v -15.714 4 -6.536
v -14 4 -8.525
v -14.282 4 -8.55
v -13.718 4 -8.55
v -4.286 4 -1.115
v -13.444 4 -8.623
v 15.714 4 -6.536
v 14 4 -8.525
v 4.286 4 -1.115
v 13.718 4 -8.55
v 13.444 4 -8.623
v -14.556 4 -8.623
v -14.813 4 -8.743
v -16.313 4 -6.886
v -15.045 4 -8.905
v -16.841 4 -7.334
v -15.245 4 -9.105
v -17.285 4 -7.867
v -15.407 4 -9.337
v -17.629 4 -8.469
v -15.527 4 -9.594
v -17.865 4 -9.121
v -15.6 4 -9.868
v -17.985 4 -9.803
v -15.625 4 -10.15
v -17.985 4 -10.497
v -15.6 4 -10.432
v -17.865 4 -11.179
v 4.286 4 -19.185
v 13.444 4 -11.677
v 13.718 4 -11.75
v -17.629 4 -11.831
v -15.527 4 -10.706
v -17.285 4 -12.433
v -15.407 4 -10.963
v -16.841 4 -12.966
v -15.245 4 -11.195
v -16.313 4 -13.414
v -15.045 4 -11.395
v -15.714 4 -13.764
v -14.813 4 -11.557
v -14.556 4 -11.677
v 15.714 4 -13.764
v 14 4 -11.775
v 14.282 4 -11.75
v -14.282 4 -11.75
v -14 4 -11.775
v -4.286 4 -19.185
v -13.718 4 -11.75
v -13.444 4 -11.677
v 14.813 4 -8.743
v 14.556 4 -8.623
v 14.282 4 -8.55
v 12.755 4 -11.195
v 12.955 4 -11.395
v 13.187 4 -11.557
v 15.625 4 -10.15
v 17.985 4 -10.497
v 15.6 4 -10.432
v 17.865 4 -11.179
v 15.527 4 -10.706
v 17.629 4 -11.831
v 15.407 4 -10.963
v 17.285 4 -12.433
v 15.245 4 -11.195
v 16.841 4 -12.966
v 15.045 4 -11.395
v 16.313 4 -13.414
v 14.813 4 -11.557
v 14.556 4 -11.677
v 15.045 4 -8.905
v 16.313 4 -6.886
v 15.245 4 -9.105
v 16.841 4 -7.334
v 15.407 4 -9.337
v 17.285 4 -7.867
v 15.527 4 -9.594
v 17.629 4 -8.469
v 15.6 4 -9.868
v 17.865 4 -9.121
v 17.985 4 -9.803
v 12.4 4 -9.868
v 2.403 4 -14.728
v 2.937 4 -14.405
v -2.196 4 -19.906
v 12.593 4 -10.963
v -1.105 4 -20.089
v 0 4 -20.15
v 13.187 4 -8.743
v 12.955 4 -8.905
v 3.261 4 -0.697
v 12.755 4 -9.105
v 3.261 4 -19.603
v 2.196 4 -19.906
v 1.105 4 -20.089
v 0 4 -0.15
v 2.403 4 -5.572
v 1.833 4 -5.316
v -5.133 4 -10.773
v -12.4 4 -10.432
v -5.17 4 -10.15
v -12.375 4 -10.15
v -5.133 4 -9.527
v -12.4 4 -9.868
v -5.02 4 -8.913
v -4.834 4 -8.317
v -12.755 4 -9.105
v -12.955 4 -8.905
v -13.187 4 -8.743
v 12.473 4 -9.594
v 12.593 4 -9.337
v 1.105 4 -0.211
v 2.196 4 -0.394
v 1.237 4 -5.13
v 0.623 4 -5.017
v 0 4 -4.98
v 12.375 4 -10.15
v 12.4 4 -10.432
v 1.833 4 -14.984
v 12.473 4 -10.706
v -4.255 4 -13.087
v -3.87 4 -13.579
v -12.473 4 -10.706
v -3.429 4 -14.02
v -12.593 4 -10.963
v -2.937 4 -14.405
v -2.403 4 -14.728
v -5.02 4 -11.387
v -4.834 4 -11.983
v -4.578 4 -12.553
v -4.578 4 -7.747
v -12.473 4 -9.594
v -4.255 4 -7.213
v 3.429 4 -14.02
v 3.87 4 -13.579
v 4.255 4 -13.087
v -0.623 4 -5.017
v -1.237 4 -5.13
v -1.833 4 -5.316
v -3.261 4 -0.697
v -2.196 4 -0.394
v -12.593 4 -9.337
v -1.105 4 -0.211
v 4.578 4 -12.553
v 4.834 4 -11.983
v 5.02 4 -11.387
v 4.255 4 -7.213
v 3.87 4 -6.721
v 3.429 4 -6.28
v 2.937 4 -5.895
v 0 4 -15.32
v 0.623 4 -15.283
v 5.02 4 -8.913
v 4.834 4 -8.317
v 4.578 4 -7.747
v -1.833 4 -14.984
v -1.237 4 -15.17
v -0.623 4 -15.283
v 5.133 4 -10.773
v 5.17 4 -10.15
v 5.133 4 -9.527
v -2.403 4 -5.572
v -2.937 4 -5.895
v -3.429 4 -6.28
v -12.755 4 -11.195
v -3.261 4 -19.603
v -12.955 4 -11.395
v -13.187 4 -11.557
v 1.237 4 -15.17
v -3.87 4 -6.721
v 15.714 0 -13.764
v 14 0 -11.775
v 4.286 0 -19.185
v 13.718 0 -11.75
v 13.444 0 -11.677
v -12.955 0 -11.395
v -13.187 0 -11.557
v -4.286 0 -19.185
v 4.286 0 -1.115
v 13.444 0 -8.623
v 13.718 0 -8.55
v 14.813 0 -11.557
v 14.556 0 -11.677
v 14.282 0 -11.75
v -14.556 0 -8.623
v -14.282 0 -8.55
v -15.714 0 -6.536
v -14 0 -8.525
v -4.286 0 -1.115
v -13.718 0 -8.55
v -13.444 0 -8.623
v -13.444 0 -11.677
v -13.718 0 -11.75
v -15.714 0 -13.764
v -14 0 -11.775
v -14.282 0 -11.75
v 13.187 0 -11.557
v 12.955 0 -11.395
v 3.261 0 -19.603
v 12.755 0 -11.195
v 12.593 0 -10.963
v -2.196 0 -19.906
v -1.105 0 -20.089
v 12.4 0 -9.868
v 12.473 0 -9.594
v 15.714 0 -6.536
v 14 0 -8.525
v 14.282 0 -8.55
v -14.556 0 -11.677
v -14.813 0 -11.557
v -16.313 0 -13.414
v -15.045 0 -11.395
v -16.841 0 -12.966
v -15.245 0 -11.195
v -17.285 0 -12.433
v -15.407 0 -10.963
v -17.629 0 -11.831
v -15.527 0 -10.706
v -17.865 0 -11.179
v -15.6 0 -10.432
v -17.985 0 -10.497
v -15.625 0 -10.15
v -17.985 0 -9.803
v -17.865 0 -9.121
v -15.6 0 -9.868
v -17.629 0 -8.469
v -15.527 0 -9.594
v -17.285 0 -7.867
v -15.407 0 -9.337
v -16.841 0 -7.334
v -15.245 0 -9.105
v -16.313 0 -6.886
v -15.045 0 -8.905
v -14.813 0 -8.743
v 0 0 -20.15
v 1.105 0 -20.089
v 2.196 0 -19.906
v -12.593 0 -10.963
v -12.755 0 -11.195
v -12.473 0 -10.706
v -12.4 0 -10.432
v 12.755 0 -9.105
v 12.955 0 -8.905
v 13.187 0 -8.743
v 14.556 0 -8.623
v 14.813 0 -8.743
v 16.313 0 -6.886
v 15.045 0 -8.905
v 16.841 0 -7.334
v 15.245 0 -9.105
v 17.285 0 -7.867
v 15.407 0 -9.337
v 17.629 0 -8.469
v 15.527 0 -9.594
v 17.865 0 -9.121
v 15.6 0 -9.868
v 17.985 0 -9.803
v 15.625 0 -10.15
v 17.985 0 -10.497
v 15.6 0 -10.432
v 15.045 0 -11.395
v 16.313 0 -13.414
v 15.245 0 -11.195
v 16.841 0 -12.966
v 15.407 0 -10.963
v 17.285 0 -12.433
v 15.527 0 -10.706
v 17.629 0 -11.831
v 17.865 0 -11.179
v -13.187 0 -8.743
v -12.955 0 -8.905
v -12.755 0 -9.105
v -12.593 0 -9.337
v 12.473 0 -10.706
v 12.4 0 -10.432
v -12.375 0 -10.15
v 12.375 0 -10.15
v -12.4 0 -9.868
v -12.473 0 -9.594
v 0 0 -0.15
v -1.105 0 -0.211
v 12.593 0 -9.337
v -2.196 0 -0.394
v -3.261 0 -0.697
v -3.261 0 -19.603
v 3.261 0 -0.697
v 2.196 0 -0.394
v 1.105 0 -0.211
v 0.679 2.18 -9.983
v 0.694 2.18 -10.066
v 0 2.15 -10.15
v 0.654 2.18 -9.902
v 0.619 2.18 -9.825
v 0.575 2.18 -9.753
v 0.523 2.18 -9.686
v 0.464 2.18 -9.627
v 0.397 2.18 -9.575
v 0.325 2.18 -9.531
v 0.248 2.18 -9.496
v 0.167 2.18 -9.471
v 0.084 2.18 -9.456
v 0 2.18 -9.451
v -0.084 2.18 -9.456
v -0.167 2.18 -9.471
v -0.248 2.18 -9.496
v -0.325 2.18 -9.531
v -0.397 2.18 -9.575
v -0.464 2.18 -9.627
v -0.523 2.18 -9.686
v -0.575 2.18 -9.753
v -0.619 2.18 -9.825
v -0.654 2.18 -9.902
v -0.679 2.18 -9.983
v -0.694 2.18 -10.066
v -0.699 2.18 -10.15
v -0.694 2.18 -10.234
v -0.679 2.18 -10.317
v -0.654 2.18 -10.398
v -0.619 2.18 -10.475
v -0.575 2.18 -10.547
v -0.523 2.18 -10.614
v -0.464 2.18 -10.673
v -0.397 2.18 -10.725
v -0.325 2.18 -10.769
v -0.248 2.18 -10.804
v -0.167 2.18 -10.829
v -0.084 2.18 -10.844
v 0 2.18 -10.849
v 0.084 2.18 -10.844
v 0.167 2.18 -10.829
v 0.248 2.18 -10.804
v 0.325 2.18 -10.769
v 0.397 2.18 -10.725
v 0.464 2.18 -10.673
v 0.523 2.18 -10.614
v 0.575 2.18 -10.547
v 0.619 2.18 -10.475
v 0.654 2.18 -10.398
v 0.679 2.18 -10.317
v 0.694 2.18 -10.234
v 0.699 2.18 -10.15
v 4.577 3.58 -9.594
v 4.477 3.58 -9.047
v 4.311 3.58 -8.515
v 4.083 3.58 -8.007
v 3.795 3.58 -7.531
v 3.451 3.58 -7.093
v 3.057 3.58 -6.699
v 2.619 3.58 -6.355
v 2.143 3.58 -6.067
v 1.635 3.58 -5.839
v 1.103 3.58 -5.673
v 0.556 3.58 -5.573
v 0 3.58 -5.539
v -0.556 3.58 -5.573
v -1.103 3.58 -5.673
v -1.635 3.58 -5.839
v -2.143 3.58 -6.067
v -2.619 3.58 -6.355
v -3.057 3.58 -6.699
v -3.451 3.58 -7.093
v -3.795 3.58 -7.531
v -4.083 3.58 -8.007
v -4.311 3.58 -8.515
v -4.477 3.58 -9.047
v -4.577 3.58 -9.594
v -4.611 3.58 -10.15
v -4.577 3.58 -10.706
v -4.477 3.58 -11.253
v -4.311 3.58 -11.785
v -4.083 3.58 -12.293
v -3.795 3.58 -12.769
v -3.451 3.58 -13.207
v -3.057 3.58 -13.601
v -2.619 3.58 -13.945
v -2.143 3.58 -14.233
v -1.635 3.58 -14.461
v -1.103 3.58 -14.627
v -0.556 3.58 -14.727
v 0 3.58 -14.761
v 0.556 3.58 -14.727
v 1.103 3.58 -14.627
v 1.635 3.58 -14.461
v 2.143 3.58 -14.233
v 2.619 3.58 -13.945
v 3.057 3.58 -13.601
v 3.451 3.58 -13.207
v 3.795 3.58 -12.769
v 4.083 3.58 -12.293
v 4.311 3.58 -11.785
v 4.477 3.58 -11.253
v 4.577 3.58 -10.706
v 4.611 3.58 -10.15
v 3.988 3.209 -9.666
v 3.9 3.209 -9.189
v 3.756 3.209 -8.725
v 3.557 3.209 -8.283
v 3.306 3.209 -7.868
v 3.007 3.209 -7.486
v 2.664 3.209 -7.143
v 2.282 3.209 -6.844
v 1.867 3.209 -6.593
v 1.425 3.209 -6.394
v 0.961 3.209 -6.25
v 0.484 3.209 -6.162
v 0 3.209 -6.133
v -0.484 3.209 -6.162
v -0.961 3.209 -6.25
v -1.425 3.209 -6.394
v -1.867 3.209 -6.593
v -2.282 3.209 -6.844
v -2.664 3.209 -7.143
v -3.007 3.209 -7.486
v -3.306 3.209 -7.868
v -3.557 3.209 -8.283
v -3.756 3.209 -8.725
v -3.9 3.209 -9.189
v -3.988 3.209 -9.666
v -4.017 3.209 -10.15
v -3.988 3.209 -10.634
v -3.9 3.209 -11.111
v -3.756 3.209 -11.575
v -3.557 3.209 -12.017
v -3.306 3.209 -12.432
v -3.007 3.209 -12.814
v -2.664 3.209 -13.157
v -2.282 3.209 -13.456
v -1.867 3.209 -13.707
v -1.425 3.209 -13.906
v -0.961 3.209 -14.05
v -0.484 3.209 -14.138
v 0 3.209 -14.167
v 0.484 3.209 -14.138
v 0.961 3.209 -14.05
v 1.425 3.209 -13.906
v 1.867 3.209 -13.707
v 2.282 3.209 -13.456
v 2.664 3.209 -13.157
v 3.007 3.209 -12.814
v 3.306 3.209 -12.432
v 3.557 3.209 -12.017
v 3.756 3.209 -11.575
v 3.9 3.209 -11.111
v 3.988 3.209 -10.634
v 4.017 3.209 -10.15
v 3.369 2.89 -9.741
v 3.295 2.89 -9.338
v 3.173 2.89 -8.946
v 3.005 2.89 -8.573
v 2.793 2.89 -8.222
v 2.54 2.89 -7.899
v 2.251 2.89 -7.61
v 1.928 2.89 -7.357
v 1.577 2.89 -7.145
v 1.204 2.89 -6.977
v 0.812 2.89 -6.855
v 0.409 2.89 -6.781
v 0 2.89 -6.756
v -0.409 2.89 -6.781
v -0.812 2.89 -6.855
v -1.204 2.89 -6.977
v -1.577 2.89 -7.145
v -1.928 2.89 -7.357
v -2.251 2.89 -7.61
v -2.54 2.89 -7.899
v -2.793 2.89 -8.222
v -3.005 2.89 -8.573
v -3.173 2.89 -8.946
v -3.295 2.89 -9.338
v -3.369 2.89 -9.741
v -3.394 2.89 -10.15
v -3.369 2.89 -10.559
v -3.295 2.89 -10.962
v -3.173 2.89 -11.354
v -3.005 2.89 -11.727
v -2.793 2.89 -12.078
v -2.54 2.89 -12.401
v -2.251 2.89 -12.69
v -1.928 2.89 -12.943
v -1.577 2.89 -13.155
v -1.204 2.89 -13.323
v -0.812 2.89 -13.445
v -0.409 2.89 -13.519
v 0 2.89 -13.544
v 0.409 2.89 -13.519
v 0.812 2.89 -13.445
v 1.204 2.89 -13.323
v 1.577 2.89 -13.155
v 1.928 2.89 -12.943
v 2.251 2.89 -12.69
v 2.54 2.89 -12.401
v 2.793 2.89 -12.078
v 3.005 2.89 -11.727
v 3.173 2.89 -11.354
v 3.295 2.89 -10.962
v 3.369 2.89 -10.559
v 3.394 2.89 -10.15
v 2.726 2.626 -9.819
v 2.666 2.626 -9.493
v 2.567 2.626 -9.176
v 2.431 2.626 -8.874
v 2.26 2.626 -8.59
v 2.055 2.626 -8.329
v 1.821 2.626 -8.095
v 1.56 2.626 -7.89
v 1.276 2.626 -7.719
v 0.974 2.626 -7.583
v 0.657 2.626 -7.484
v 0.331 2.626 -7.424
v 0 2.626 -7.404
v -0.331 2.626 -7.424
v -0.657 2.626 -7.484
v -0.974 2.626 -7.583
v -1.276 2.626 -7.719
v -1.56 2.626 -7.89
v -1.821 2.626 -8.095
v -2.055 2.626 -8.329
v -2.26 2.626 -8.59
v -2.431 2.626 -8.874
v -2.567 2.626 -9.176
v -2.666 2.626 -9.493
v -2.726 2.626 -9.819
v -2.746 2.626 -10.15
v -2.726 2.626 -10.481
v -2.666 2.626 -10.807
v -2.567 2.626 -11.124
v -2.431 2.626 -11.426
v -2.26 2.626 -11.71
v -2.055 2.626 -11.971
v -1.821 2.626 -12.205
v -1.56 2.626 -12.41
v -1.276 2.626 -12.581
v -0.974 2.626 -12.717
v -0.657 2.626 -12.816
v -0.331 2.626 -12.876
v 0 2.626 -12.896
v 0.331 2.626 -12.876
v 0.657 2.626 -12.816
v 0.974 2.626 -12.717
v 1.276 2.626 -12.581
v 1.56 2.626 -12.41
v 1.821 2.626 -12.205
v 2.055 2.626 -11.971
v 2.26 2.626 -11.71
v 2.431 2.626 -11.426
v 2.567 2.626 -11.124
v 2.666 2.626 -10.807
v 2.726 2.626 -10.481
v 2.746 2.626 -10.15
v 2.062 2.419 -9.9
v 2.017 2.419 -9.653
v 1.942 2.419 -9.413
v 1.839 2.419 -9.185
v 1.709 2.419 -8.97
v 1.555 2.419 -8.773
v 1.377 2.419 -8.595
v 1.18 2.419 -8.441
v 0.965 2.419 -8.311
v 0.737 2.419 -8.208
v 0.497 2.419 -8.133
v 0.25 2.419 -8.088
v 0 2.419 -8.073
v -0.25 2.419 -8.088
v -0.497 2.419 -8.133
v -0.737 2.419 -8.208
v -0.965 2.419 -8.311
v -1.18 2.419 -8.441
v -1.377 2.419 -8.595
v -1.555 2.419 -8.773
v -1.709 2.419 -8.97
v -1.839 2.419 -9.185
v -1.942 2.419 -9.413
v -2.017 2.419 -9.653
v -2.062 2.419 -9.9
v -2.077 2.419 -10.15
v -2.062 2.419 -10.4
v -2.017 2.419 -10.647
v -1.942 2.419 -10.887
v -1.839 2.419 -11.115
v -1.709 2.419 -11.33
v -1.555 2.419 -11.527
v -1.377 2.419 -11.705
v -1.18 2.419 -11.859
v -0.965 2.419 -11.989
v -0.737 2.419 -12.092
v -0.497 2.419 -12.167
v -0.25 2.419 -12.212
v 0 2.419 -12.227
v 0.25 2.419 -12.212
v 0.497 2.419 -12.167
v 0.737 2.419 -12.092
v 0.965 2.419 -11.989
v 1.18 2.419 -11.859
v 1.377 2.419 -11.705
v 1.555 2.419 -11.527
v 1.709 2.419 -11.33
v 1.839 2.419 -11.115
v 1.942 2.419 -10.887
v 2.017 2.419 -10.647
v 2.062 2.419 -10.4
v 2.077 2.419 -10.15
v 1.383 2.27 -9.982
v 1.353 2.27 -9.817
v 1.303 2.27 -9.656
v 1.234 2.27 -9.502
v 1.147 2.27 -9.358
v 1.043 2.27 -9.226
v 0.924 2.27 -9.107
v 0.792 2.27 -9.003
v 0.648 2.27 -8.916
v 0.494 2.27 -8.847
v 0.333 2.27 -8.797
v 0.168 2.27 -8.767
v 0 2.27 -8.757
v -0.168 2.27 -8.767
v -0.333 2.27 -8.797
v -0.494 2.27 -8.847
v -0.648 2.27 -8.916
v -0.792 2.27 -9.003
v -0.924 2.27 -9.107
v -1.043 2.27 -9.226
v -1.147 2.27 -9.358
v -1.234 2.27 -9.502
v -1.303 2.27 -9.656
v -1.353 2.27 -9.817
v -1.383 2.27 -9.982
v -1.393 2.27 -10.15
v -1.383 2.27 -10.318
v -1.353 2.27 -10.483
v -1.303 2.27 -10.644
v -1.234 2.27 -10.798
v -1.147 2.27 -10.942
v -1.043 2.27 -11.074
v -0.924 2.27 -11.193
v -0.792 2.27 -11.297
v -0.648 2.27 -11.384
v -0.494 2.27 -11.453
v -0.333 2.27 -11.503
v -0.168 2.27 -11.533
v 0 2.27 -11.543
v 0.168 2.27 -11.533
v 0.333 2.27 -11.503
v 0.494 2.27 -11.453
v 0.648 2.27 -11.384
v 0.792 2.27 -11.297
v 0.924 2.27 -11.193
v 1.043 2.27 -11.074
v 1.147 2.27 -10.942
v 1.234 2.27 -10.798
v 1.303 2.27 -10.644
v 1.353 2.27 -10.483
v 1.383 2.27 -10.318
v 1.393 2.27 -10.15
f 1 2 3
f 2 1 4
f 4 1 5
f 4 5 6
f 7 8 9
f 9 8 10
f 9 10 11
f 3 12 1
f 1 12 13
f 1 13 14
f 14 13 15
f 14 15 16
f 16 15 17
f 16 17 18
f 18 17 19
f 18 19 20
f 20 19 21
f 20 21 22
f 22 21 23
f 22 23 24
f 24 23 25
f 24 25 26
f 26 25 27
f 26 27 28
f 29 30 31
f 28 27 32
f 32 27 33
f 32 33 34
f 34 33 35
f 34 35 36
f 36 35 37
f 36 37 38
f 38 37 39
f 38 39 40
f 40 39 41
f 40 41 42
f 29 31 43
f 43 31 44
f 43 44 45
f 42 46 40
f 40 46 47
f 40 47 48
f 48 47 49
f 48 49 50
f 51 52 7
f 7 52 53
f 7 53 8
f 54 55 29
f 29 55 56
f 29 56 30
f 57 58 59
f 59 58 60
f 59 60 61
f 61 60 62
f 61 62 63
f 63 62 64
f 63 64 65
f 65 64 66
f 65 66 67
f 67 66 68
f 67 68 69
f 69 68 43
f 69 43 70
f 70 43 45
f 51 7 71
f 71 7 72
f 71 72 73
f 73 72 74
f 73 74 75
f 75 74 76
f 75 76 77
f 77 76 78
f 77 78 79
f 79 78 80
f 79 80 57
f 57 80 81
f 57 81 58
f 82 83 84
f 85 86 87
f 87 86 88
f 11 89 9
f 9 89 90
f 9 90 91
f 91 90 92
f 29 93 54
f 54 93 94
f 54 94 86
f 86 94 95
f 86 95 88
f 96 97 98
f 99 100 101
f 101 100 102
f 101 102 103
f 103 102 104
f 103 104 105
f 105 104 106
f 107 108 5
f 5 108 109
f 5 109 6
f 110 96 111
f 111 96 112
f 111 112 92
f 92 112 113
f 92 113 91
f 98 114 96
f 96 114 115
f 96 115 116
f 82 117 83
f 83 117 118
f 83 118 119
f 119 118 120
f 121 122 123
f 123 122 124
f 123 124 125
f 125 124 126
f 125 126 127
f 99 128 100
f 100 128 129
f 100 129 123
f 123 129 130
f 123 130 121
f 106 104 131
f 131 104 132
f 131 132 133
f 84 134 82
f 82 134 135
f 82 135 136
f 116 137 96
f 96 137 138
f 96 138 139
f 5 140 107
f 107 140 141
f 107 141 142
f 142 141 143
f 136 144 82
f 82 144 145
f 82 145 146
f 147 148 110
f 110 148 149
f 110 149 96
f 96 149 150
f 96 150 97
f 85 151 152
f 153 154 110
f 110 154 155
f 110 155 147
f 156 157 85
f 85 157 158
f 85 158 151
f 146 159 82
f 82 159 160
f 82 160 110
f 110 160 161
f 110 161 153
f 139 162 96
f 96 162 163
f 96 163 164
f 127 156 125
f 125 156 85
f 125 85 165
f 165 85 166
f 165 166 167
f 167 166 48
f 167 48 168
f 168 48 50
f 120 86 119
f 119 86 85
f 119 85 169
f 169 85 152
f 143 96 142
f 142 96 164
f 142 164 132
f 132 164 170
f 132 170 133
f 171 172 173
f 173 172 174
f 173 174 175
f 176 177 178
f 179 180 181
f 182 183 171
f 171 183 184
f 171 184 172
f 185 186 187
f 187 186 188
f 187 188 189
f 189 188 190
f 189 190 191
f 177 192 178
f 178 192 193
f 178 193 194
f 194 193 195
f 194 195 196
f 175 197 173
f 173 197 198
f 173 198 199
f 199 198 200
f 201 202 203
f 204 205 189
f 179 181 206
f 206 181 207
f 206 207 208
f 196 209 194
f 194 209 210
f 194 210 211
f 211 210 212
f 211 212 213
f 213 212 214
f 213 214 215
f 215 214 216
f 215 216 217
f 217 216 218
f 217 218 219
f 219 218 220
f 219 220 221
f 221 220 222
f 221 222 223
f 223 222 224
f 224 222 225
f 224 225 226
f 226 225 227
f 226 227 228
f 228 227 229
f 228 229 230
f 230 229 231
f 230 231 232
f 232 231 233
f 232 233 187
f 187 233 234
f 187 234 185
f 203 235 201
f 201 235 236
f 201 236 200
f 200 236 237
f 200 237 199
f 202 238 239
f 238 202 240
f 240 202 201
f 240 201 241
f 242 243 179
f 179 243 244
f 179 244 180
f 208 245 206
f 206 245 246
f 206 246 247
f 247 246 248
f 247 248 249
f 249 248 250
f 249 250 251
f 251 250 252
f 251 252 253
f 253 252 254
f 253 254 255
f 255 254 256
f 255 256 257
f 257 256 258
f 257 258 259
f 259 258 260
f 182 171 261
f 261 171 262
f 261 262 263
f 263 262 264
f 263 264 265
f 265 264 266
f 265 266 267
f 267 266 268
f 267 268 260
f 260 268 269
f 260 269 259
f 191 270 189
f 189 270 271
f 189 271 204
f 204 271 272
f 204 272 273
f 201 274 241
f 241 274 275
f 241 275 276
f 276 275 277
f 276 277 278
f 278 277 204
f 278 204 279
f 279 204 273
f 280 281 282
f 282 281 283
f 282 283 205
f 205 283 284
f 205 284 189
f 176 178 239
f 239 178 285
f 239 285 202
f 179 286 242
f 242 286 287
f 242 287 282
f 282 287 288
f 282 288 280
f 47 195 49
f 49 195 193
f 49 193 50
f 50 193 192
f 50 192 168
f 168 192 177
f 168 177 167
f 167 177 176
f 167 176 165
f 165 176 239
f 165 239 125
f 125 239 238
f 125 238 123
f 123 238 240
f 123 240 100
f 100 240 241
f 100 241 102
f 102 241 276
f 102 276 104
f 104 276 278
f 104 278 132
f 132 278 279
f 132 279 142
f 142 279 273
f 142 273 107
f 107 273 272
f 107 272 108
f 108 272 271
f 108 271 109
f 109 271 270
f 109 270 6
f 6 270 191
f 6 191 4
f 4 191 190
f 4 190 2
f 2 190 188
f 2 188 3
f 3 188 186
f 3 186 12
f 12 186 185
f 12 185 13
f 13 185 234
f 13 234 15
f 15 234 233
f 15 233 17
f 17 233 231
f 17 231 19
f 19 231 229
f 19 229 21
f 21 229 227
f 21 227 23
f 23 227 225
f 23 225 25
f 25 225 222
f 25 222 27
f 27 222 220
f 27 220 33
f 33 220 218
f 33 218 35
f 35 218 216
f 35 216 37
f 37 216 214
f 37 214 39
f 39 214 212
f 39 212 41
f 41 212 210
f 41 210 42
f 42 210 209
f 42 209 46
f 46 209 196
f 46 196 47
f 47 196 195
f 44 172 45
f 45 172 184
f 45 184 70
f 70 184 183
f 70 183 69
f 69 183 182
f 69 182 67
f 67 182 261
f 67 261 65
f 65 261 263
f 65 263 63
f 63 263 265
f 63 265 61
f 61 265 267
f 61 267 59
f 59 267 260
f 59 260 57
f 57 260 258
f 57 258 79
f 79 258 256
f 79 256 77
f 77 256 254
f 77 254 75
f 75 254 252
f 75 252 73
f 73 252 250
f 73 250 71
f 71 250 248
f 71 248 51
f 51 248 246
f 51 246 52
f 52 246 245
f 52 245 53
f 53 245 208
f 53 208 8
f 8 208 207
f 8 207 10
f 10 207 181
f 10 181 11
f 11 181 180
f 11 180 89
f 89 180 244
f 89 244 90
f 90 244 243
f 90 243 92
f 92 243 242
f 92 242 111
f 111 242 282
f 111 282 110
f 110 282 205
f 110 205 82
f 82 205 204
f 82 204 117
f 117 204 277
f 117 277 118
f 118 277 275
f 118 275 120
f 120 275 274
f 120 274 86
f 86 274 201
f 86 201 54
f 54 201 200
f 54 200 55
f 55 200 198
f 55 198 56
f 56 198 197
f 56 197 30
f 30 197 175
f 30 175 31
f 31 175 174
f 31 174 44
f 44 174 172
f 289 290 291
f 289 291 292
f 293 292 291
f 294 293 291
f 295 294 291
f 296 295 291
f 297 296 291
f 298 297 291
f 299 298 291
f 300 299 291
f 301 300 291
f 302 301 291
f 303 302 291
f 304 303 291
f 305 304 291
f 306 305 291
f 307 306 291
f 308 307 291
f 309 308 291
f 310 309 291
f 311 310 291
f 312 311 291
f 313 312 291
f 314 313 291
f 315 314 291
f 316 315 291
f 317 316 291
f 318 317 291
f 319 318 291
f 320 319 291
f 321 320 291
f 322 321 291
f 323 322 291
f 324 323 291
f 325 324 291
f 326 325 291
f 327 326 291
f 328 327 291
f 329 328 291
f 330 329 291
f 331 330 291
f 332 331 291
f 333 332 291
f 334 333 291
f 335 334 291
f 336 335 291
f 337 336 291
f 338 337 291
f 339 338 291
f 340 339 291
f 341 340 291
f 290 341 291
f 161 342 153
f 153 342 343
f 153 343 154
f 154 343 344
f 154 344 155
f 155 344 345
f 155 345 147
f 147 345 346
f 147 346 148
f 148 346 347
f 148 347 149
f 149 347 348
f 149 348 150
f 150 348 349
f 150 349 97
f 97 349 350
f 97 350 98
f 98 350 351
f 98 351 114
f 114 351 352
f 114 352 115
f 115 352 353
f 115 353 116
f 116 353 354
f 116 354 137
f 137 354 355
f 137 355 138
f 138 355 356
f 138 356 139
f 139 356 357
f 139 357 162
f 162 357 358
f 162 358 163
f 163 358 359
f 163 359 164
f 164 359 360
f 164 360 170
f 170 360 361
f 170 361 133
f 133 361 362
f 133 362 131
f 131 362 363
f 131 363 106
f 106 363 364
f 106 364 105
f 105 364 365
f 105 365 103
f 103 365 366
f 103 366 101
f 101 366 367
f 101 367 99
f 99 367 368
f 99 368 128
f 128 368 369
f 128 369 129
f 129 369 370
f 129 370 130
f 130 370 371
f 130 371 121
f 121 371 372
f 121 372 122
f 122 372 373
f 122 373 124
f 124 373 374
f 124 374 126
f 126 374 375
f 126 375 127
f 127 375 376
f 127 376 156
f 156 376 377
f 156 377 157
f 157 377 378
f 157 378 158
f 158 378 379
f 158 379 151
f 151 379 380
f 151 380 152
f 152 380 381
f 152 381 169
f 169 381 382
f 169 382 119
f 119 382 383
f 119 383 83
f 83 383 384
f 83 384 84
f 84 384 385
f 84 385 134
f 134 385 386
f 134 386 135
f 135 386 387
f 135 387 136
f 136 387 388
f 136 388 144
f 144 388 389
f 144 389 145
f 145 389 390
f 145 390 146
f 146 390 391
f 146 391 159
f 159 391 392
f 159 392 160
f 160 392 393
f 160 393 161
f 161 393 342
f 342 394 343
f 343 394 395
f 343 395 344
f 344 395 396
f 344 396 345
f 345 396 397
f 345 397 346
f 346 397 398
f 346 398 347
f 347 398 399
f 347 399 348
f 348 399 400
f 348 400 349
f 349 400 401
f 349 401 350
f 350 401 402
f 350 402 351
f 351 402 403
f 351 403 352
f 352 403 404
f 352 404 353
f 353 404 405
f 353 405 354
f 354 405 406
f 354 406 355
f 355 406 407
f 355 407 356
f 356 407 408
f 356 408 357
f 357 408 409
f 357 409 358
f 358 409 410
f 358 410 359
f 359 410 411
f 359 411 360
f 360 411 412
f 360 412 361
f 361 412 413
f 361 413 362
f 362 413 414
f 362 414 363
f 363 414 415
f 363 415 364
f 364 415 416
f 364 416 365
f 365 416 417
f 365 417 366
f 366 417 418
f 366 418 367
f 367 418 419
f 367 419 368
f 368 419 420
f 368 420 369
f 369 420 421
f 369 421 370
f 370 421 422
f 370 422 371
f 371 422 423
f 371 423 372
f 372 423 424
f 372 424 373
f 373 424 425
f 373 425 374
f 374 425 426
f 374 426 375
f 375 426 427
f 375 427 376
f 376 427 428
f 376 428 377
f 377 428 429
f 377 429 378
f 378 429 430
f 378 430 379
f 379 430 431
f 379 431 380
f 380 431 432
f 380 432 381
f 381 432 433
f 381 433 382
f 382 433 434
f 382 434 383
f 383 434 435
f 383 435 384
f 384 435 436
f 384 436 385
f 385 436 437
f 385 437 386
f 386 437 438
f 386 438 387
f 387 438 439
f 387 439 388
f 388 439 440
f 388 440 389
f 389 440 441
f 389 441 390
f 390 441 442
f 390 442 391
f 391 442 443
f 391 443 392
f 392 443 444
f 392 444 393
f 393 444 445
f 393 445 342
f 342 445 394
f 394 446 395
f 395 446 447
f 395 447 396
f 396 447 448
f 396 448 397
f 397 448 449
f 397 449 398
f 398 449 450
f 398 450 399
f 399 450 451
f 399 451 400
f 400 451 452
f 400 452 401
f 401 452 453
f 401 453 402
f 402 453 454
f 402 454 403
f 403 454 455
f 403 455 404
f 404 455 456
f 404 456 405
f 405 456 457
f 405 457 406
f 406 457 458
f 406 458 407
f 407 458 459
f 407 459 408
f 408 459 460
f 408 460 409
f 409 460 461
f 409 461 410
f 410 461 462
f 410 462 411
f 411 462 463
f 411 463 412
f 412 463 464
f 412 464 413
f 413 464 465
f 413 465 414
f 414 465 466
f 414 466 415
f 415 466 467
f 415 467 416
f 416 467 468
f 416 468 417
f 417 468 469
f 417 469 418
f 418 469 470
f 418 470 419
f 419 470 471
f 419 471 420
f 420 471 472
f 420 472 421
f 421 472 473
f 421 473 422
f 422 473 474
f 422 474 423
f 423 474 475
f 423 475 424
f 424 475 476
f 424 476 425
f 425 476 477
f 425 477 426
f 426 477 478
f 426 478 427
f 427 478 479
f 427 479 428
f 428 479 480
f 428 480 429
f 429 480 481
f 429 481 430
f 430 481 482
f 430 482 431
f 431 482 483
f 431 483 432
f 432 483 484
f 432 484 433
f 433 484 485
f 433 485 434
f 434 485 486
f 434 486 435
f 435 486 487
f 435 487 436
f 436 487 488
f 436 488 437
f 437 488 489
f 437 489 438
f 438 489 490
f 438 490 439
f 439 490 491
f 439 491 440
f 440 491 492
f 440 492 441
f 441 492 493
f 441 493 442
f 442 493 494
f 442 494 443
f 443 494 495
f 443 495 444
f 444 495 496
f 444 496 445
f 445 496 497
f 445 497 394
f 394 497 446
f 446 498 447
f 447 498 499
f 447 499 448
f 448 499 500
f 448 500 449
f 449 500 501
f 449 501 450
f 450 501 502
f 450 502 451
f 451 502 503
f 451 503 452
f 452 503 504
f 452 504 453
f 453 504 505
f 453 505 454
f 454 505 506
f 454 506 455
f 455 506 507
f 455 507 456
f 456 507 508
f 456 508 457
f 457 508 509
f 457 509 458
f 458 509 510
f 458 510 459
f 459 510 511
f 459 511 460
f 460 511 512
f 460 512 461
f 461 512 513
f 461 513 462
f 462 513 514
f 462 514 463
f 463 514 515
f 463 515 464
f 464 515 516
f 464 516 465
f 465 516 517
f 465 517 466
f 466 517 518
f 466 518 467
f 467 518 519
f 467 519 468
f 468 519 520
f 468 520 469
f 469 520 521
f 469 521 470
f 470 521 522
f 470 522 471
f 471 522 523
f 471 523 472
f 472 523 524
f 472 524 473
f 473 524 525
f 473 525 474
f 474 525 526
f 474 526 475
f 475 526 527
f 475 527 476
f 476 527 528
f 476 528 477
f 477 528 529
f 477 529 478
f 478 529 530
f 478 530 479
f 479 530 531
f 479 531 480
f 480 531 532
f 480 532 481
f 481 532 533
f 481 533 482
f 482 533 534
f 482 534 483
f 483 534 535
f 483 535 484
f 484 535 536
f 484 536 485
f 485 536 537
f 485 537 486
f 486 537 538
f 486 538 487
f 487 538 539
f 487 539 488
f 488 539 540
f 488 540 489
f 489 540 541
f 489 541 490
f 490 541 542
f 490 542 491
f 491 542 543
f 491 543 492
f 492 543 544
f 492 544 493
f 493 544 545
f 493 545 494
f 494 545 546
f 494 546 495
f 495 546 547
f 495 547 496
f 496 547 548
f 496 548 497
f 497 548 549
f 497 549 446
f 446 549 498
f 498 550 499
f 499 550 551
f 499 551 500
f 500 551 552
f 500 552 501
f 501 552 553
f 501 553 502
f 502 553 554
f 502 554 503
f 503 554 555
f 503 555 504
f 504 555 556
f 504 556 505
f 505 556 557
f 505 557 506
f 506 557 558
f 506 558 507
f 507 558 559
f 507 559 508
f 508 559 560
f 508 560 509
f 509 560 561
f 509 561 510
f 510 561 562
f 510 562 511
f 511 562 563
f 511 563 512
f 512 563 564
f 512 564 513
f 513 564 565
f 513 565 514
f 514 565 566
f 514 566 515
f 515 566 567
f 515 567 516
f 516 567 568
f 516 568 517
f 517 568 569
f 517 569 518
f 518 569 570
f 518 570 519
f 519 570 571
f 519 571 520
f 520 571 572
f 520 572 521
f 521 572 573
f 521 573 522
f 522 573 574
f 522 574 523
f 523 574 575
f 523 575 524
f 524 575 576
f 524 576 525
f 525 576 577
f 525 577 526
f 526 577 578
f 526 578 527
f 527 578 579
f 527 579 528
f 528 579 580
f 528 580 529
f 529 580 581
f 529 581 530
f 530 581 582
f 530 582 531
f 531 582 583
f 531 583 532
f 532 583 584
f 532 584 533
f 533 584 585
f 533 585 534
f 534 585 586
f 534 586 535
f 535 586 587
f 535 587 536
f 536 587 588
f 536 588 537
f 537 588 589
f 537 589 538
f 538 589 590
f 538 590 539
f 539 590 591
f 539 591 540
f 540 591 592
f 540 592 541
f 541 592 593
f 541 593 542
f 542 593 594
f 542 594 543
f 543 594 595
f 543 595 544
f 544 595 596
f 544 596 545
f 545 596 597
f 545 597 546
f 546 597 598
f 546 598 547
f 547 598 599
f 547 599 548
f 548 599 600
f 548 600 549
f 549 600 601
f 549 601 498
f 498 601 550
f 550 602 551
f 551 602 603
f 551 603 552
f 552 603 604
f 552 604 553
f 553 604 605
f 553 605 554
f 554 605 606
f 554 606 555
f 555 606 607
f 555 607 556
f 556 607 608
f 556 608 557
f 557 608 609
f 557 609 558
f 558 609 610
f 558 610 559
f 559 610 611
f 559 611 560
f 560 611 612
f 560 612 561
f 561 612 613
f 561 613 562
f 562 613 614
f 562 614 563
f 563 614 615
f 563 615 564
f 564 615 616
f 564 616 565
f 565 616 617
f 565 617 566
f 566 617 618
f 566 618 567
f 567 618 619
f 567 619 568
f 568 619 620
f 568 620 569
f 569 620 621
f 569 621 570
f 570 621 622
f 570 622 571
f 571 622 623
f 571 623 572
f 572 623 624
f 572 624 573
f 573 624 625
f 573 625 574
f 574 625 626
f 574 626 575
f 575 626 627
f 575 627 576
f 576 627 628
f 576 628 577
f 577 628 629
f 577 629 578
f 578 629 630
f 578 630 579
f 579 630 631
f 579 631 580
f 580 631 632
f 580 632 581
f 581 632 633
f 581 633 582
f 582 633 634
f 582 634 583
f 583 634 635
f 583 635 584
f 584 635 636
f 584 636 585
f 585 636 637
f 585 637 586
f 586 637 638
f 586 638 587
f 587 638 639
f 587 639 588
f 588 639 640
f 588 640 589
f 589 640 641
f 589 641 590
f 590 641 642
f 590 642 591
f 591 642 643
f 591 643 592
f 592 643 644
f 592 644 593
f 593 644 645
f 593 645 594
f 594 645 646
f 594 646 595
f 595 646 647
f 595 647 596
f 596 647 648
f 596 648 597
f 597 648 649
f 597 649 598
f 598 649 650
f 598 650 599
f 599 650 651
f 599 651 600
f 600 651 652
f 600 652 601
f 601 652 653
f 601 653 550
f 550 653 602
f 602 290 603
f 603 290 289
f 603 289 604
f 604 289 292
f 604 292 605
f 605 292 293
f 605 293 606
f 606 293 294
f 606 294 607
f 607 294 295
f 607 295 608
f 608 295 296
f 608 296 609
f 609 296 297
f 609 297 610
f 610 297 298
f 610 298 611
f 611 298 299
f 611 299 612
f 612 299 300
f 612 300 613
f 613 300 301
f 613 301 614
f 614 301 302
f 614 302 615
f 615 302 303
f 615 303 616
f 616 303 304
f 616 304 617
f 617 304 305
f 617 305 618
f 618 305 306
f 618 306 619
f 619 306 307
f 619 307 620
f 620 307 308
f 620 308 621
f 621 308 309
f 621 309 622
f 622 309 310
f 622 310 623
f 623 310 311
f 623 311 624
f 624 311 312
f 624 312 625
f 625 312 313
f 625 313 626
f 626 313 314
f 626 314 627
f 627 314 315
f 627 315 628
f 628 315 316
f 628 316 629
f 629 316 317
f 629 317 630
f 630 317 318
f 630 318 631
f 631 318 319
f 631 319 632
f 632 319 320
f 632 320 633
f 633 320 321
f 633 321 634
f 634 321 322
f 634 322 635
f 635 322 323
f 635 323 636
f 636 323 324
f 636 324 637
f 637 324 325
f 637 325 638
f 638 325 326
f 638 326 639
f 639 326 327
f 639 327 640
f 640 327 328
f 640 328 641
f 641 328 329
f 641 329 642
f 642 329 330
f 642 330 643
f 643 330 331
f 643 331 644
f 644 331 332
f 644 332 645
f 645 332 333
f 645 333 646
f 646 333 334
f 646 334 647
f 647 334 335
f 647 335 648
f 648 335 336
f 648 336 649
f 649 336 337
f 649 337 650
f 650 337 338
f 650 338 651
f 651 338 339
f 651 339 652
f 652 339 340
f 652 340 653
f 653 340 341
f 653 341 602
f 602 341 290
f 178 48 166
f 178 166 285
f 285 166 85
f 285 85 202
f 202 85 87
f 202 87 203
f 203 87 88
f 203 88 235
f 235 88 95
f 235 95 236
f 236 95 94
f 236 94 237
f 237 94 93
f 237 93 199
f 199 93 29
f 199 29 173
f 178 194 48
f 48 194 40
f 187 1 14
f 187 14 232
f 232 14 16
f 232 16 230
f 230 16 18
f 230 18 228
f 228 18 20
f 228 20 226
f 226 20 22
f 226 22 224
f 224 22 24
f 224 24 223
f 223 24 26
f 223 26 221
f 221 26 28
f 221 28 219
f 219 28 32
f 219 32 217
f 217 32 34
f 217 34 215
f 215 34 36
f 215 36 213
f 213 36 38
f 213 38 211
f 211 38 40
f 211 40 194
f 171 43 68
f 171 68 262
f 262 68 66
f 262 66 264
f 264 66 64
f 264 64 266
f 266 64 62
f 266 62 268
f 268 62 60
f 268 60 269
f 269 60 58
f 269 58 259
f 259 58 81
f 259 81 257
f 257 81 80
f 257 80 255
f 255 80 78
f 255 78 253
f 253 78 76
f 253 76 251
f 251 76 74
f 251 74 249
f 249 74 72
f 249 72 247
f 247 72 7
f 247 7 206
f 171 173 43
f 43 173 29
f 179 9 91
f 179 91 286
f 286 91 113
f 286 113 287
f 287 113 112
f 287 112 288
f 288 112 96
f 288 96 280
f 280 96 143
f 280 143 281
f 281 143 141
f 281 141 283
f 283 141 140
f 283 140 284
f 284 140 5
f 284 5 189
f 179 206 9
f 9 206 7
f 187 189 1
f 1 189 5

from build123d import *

# Parameters (mm, degrees)
CROQUIS1_W              = 36
CROQUIS1_H              = 20.3
CROQUIS1_R              = 1.625
SALIENTE_EXTRUIR1_DEPTH = 4
CORTAR_EXTRUIR2_DEPTH   = 28.424259334


with BuildPart() as part:
    # Croquis1 → Saliente-Extruir1 (new body)
    with BuildSketch(Plane(origin=(0, 0, 0), x_dir=(1, 0, 0), z_dir=(0, 1, 0))):
        with Locations((0, 10.15)):
            Rectangle(CROQUIS1_W, CROQUIS1_H)
        with Locations(Location((-14, 10.15, 0), (0, 0, 270))):
            Circle(CROQUIS1_R, mode=Mode.SUBTRACT)
        with Locations(Location((14, 10.15, 0), (0, 0, 90))):
            Circle(CROQUIS1_R, mode=Mode.SUBTRACT)
    extrude(amount=SALIENTE_EXTRUIR1_DEPTH)

    # Croquis2 → Cortar-Revolución1 (revolve, cut)
    with BuildSketch(Plane.XY.offset(-10.15)):
        with BuildLine():
            Line((0, 18.45), (0, 2.15))
            ThreePointArc((0, 2.15), (-8.15, 10.3), (0, 18.45))
        make_face()
    revolve(axis=Axis((0, -1000, -10.15), (0, 1, 0)), mode=Mode.SUBTRACT)

    # Croquis3 → Cortar-Extruir2 (cut, through all)
    with BuildSketch(Plane(origin=(0, 4, 0), x_dir=(1, 0, 0), z_dir=(0, 1, 0))):
        with BuildLine():
            ThreePointArc((-18, 10.15), (-17.380616997, 12.288089971), (-15.714285638, 13.764031648))
            Line((-15.714285638, 13.764031648), (-4.285714096, 19.185078825))
            ThreePointArc((-4.285714096, 19.185078825), (1.05e-07, 20.149999706), (4.285714286, 19.185078735))
            Line((4.285714286, 19.185078735), (15.714285714, 13.764031612))
            ThreePointArc((15.714285714, 13.764031612), (17.380617007, 12.288089954), (18, 10.150000044))
            Line((18, 10.150000044), (18, 20.3))
            Line((18, 20.3), (-18, 20.3))
            Line((-18, 20.3), (-18, 10.15))
        make_face()
        with BuildLine():
            ThreePointArc((-15.714285714, 6.535968388), (-17.380617019, 8.011910065), (-18, 10.15))
            Line((-18, 10.15), (-18, -5.88e-07))
            Line((-18, -5.88e-07), (18, -5.88e-07))
            Line((18, -5.88e-07), (18, 10.150000044))
            ThreePointArc((18, 10.150000044), (17.380617031, 8.011910083), (15.714285714, 6.535968388))
            Line((15.714285714, 6.535968388), (4.285714286, 1.114920677))
            ThreePointArc((4.285714286, 1.114920677), (0, 0.149999706), (-4.285714286, 1.114920677))
            Line((-4.285714286, 1.114920677), (-15.714285714, 6.535968388))
        make_face()
    extrude(amount=-CORTAR_EXTRUIR2_DEPTH, mode=Mode.SUBTRACT)


solid = part.part
